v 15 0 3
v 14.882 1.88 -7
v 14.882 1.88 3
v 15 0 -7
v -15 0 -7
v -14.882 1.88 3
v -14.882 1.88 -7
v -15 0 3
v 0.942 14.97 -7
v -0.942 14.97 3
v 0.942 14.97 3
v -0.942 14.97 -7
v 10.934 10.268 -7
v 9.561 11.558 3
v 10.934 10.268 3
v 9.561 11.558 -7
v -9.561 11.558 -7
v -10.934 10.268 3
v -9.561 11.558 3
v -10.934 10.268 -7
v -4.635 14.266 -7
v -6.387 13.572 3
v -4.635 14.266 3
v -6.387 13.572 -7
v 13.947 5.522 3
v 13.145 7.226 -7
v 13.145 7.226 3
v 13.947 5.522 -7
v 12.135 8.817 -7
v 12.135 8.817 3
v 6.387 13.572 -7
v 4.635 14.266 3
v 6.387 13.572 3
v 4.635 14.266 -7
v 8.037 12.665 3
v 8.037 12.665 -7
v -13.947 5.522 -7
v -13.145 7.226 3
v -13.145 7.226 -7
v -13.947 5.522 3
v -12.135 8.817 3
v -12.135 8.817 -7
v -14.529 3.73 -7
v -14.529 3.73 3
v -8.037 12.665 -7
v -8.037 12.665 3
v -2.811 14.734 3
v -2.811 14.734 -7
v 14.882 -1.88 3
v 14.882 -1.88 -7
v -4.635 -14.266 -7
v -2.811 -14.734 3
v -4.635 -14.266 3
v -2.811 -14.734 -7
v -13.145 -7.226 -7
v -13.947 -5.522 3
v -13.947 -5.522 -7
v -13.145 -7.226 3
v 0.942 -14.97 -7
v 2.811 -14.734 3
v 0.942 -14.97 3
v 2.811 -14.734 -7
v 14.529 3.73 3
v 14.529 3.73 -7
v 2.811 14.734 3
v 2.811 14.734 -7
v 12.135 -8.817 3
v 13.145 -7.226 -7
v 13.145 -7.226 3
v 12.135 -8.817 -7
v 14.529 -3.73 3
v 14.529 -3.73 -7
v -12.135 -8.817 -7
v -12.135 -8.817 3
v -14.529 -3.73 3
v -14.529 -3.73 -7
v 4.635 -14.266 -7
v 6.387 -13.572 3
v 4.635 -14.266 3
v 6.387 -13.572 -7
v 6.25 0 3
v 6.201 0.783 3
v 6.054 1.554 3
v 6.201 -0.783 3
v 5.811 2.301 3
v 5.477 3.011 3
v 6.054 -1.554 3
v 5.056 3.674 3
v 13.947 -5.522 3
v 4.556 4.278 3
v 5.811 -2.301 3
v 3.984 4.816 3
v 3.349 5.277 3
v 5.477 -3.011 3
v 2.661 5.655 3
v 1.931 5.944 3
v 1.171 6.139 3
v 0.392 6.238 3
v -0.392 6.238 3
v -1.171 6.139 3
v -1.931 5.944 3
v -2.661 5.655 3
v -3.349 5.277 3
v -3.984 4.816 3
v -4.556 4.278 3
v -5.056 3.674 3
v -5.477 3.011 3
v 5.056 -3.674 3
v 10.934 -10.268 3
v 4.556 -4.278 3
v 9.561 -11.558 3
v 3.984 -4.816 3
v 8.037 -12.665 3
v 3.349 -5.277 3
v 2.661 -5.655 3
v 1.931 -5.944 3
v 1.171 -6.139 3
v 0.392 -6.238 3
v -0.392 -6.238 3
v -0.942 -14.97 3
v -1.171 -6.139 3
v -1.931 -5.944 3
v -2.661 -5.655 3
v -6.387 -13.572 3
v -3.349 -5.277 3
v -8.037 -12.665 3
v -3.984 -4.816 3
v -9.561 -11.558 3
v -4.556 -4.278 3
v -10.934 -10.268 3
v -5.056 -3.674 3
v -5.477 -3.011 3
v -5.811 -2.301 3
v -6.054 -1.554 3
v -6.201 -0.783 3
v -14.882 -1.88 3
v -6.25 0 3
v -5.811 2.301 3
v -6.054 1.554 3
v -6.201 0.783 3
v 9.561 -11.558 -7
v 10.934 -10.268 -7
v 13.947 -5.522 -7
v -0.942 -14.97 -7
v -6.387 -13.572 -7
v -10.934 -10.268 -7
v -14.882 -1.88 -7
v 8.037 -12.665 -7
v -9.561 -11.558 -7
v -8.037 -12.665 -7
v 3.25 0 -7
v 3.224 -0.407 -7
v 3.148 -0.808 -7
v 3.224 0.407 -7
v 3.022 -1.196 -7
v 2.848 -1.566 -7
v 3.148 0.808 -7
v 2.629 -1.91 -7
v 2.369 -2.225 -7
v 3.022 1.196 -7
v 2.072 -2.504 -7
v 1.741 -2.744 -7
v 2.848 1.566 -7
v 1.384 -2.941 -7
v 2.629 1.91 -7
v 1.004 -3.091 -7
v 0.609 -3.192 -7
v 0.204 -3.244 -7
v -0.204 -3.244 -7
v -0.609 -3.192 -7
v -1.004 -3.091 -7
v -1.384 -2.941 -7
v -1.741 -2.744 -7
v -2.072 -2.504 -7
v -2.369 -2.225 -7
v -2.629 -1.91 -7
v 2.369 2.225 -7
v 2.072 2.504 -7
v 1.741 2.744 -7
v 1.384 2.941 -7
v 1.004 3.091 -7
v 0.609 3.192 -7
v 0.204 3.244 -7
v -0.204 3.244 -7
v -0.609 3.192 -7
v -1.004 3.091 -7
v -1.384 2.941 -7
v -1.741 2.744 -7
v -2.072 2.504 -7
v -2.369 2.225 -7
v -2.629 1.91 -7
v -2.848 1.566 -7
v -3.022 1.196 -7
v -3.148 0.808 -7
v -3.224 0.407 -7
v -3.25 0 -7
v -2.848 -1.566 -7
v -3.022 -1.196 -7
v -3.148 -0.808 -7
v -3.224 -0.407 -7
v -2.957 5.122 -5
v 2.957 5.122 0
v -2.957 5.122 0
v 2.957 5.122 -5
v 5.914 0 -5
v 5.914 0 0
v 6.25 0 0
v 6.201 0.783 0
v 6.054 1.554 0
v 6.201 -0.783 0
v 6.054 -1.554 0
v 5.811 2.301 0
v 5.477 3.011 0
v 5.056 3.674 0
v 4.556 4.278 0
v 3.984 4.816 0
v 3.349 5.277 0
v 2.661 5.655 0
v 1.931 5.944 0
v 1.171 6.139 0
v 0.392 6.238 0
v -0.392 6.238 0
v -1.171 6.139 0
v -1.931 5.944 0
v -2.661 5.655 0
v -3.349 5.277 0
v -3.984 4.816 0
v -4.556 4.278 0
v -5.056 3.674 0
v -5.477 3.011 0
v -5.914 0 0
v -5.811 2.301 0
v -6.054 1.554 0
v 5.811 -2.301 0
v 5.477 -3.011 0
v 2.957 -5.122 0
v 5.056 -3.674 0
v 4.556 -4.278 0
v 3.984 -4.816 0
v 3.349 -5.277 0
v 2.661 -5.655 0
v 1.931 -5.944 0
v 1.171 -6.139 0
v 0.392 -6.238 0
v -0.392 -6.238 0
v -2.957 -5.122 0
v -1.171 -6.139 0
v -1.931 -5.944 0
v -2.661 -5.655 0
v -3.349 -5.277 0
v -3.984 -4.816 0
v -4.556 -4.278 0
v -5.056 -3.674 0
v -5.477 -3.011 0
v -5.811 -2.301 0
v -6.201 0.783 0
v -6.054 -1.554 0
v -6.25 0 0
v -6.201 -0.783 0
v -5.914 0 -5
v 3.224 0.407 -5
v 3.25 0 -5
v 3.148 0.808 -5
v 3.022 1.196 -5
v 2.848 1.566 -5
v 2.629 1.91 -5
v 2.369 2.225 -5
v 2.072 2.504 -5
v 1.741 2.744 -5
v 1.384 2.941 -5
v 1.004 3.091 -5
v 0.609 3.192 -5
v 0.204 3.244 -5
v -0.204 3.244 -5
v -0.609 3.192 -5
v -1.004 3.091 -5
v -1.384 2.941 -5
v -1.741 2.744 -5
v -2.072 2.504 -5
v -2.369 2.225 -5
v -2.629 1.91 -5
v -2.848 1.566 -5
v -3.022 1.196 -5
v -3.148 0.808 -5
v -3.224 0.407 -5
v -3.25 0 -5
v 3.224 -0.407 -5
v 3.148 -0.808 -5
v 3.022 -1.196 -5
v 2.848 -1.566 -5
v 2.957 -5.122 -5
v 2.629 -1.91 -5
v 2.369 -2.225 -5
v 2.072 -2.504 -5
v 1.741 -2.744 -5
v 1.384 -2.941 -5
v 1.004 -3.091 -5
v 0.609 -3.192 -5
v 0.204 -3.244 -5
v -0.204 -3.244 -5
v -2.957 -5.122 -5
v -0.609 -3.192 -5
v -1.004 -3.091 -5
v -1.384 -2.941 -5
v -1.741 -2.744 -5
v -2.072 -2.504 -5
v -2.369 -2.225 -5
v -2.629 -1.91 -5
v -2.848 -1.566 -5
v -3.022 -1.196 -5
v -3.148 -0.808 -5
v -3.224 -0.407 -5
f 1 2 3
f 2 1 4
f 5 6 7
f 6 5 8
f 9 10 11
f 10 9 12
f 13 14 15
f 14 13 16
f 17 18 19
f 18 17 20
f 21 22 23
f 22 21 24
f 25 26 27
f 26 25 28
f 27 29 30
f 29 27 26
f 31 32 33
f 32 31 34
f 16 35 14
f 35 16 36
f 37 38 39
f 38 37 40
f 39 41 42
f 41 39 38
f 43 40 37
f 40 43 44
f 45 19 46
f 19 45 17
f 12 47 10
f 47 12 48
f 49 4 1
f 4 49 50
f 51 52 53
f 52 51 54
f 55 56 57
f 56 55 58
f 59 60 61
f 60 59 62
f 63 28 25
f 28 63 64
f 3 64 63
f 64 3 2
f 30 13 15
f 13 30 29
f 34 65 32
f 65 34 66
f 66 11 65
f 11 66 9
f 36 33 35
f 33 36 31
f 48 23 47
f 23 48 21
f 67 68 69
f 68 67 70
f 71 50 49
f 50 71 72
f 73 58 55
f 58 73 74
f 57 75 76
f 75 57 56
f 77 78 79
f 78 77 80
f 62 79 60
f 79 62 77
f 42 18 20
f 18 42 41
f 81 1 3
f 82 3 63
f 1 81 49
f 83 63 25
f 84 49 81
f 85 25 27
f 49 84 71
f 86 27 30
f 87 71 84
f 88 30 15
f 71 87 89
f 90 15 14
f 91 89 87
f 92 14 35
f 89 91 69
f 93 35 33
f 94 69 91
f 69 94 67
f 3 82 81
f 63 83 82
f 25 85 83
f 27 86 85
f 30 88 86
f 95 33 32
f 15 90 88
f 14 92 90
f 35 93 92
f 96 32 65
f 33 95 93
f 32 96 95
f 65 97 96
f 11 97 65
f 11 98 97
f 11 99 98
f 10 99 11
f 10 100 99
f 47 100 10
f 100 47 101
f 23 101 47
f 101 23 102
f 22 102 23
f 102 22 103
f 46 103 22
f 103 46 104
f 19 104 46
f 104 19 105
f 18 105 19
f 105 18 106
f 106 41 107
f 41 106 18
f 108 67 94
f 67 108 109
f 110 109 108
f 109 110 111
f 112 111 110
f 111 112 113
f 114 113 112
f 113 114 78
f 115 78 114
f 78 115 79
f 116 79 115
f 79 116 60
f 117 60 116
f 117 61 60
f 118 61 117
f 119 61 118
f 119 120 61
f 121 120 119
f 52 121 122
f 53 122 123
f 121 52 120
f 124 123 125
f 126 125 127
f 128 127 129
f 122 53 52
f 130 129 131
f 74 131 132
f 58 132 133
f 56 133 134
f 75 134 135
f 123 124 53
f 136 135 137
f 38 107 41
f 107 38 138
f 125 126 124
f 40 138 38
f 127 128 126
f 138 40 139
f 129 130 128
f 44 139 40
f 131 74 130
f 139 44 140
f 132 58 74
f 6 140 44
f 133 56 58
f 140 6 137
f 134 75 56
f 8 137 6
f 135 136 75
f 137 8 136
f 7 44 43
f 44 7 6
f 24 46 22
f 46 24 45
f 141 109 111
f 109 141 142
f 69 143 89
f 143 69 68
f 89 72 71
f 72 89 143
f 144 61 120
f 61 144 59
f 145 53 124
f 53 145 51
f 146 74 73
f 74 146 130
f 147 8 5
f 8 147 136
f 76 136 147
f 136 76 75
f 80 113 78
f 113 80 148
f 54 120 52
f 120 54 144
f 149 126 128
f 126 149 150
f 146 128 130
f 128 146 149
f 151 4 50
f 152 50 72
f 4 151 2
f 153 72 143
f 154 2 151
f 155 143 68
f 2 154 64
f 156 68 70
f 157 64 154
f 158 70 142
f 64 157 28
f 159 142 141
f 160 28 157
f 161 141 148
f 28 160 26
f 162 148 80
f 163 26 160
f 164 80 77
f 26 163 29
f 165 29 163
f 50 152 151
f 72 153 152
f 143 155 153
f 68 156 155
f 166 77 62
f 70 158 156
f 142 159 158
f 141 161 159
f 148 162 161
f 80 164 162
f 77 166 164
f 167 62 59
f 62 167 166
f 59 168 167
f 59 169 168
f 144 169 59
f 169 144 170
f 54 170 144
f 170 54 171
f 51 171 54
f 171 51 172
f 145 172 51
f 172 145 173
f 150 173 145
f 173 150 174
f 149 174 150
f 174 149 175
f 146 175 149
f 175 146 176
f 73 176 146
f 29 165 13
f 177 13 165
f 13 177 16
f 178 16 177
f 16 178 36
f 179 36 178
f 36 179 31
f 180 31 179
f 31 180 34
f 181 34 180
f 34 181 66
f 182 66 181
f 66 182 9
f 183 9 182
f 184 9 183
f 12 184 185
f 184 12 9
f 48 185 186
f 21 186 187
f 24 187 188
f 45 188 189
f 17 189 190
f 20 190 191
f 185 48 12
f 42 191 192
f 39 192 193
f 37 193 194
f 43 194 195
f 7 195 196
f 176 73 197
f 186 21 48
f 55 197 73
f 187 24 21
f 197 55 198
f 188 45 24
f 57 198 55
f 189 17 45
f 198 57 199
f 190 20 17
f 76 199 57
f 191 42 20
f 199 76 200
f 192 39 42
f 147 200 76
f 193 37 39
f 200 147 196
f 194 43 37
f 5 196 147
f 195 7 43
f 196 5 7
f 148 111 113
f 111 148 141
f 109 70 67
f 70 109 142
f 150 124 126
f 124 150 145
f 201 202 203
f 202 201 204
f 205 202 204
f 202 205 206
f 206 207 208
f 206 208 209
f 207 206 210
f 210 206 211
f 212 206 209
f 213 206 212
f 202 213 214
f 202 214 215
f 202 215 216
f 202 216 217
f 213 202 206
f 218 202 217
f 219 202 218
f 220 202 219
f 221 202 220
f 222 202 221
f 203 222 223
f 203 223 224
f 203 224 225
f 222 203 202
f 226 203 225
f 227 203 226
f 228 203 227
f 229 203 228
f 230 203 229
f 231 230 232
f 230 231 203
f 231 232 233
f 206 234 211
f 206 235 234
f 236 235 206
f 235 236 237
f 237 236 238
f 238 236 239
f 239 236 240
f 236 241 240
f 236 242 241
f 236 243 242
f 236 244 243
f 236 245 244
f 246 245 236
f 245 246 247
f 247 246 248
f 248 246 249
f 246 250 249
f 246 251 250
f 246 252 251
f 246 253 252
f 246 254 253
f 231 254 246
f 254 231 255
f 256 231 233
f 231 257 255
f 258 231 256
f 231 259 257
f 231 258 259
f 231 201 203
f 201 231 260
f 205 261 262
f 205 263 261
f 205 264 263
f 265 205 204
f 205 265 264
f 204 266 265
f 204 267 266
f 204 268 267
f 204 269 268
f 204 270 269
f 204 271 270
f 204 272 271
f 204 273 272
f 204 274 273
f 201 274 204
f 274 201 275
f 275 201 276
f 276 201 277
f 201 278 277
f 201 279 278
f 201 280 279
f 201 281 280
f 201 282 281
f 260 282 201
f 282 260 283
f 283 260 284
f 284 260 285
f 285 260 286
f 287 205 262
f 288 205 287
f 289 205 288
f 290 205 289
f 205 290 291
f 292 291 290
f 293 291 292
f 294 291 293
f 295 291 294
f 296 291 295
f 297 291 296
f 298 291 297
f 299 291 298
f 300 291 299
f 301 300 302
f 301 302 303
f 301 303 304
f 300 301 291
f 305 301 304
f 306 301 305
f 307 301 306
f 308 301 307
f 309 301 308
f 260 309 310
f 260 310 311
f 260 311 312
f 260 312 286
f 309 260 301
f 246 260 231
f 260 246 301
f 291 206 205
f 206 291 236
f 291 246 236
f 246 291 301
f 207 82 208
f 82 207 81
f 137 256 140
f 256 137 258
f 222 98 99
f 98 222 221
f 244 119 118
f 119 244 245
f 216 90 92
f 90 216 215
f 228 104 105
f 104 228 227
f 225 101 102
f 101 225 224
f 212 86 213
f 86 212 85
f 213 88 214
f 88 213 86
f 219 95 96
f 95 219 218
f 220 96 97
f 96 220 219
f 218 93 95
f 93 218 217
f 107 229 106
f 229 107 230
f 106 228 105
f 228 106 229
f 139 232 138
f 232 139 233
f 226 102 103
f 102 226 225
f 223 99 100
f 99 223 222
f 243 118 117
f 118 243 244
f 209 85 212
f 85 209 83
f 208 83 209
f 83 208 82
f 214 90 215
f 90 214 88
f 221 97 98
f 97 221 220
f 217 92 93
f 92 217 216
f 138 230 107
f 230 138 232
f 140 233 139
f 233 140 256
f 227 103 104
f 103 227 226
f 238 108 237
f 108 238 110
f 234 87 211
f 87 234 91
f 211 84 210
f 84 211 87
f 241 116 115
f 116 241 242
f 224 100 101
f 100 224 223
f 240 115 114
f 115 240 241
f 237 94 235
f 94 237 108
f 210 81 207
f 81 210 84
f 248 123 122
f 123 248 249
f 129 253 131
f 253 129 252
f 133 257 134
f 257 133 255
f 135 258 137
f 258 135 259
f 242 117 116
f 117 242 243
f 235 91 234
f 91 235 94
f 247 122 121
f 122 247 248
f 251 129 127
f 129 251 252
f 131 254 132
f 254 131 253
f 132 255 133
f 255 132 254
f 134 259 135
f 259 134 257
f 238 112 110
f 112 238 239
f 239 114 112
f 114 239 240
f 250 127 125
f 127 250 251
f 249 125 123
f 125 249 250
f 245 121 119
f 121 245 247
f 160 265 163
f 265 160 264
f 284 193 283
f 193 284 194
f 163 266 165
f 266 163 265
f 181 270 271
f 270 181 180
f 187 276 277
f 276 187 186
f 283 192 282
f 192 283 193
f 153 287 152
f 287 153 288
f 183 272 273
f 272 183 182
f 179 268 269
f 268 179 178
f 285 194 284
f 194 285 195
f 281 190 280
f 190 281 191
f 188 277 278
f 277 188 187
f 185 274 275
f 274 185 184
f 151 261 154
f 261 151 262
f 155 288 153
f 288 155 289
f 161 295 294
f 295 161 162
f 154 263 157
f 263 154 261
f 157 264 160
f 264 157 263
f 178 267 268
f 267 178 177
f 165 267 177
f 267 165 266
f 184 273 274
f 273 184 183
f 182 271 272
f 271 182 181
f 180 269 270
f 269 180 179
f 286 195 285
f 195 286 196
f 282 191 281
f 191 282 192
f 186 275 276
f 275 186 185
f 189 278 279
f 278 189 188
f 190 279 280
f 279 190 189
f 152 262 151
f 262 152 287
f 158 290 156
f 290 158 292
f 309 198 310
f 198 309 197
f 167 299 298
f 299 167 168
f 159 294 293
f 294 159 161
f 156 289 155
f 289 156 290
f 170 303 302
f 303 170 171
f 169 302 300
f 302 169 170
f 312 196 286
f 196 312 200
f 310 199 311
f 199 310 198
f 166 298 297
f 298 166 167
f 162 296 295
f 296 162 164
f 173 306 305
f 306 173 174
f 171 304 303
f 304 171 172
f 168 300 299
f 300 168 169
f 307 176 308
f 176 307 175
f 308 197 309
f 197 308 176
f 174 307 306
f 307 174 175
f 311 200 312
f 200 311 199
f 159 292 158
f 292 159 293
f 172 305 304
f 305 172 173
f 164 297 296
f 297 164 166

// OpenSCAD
$fn = 50;


difference() {
	union() {
		translate(v = [0, 0, -7.0000000000]) {
			cylinder(h = 10.0000000000, r = 15.0000000000);
		}
		#translate(v = [0, 0, -8.5000000000]) {
			cylinder(h = 8.5000000000, r = 2.8750000000);
		}
	}
	union() {
		translate(v = [0, 0, 0]) {
			rotate(a = [0, 0, 0]) {
				difference() {
					union() {
						translate(v = [0, 0, -5]) {
							linear_extrude(height = 5) {
								polygon(points = [[5.9142500000, 0.0000000000], [2.9571250000, 5.1218907443], [-2.9571250000, 5.1218907443], [-5.9142500000, 0.0000000000], [-2.9571250000, -5.1218907443], [2.9571250000, -5.1218907443]]);
							}
						}
					}
					union();
				}
			}
		}
		#cylinder(h = 3, r = 6.2500000000);
		#translate(v = [0, 0, -100.0000000000]) {
			cylinder(h = 200, r = 3.2500000000);
		}
	}
}
